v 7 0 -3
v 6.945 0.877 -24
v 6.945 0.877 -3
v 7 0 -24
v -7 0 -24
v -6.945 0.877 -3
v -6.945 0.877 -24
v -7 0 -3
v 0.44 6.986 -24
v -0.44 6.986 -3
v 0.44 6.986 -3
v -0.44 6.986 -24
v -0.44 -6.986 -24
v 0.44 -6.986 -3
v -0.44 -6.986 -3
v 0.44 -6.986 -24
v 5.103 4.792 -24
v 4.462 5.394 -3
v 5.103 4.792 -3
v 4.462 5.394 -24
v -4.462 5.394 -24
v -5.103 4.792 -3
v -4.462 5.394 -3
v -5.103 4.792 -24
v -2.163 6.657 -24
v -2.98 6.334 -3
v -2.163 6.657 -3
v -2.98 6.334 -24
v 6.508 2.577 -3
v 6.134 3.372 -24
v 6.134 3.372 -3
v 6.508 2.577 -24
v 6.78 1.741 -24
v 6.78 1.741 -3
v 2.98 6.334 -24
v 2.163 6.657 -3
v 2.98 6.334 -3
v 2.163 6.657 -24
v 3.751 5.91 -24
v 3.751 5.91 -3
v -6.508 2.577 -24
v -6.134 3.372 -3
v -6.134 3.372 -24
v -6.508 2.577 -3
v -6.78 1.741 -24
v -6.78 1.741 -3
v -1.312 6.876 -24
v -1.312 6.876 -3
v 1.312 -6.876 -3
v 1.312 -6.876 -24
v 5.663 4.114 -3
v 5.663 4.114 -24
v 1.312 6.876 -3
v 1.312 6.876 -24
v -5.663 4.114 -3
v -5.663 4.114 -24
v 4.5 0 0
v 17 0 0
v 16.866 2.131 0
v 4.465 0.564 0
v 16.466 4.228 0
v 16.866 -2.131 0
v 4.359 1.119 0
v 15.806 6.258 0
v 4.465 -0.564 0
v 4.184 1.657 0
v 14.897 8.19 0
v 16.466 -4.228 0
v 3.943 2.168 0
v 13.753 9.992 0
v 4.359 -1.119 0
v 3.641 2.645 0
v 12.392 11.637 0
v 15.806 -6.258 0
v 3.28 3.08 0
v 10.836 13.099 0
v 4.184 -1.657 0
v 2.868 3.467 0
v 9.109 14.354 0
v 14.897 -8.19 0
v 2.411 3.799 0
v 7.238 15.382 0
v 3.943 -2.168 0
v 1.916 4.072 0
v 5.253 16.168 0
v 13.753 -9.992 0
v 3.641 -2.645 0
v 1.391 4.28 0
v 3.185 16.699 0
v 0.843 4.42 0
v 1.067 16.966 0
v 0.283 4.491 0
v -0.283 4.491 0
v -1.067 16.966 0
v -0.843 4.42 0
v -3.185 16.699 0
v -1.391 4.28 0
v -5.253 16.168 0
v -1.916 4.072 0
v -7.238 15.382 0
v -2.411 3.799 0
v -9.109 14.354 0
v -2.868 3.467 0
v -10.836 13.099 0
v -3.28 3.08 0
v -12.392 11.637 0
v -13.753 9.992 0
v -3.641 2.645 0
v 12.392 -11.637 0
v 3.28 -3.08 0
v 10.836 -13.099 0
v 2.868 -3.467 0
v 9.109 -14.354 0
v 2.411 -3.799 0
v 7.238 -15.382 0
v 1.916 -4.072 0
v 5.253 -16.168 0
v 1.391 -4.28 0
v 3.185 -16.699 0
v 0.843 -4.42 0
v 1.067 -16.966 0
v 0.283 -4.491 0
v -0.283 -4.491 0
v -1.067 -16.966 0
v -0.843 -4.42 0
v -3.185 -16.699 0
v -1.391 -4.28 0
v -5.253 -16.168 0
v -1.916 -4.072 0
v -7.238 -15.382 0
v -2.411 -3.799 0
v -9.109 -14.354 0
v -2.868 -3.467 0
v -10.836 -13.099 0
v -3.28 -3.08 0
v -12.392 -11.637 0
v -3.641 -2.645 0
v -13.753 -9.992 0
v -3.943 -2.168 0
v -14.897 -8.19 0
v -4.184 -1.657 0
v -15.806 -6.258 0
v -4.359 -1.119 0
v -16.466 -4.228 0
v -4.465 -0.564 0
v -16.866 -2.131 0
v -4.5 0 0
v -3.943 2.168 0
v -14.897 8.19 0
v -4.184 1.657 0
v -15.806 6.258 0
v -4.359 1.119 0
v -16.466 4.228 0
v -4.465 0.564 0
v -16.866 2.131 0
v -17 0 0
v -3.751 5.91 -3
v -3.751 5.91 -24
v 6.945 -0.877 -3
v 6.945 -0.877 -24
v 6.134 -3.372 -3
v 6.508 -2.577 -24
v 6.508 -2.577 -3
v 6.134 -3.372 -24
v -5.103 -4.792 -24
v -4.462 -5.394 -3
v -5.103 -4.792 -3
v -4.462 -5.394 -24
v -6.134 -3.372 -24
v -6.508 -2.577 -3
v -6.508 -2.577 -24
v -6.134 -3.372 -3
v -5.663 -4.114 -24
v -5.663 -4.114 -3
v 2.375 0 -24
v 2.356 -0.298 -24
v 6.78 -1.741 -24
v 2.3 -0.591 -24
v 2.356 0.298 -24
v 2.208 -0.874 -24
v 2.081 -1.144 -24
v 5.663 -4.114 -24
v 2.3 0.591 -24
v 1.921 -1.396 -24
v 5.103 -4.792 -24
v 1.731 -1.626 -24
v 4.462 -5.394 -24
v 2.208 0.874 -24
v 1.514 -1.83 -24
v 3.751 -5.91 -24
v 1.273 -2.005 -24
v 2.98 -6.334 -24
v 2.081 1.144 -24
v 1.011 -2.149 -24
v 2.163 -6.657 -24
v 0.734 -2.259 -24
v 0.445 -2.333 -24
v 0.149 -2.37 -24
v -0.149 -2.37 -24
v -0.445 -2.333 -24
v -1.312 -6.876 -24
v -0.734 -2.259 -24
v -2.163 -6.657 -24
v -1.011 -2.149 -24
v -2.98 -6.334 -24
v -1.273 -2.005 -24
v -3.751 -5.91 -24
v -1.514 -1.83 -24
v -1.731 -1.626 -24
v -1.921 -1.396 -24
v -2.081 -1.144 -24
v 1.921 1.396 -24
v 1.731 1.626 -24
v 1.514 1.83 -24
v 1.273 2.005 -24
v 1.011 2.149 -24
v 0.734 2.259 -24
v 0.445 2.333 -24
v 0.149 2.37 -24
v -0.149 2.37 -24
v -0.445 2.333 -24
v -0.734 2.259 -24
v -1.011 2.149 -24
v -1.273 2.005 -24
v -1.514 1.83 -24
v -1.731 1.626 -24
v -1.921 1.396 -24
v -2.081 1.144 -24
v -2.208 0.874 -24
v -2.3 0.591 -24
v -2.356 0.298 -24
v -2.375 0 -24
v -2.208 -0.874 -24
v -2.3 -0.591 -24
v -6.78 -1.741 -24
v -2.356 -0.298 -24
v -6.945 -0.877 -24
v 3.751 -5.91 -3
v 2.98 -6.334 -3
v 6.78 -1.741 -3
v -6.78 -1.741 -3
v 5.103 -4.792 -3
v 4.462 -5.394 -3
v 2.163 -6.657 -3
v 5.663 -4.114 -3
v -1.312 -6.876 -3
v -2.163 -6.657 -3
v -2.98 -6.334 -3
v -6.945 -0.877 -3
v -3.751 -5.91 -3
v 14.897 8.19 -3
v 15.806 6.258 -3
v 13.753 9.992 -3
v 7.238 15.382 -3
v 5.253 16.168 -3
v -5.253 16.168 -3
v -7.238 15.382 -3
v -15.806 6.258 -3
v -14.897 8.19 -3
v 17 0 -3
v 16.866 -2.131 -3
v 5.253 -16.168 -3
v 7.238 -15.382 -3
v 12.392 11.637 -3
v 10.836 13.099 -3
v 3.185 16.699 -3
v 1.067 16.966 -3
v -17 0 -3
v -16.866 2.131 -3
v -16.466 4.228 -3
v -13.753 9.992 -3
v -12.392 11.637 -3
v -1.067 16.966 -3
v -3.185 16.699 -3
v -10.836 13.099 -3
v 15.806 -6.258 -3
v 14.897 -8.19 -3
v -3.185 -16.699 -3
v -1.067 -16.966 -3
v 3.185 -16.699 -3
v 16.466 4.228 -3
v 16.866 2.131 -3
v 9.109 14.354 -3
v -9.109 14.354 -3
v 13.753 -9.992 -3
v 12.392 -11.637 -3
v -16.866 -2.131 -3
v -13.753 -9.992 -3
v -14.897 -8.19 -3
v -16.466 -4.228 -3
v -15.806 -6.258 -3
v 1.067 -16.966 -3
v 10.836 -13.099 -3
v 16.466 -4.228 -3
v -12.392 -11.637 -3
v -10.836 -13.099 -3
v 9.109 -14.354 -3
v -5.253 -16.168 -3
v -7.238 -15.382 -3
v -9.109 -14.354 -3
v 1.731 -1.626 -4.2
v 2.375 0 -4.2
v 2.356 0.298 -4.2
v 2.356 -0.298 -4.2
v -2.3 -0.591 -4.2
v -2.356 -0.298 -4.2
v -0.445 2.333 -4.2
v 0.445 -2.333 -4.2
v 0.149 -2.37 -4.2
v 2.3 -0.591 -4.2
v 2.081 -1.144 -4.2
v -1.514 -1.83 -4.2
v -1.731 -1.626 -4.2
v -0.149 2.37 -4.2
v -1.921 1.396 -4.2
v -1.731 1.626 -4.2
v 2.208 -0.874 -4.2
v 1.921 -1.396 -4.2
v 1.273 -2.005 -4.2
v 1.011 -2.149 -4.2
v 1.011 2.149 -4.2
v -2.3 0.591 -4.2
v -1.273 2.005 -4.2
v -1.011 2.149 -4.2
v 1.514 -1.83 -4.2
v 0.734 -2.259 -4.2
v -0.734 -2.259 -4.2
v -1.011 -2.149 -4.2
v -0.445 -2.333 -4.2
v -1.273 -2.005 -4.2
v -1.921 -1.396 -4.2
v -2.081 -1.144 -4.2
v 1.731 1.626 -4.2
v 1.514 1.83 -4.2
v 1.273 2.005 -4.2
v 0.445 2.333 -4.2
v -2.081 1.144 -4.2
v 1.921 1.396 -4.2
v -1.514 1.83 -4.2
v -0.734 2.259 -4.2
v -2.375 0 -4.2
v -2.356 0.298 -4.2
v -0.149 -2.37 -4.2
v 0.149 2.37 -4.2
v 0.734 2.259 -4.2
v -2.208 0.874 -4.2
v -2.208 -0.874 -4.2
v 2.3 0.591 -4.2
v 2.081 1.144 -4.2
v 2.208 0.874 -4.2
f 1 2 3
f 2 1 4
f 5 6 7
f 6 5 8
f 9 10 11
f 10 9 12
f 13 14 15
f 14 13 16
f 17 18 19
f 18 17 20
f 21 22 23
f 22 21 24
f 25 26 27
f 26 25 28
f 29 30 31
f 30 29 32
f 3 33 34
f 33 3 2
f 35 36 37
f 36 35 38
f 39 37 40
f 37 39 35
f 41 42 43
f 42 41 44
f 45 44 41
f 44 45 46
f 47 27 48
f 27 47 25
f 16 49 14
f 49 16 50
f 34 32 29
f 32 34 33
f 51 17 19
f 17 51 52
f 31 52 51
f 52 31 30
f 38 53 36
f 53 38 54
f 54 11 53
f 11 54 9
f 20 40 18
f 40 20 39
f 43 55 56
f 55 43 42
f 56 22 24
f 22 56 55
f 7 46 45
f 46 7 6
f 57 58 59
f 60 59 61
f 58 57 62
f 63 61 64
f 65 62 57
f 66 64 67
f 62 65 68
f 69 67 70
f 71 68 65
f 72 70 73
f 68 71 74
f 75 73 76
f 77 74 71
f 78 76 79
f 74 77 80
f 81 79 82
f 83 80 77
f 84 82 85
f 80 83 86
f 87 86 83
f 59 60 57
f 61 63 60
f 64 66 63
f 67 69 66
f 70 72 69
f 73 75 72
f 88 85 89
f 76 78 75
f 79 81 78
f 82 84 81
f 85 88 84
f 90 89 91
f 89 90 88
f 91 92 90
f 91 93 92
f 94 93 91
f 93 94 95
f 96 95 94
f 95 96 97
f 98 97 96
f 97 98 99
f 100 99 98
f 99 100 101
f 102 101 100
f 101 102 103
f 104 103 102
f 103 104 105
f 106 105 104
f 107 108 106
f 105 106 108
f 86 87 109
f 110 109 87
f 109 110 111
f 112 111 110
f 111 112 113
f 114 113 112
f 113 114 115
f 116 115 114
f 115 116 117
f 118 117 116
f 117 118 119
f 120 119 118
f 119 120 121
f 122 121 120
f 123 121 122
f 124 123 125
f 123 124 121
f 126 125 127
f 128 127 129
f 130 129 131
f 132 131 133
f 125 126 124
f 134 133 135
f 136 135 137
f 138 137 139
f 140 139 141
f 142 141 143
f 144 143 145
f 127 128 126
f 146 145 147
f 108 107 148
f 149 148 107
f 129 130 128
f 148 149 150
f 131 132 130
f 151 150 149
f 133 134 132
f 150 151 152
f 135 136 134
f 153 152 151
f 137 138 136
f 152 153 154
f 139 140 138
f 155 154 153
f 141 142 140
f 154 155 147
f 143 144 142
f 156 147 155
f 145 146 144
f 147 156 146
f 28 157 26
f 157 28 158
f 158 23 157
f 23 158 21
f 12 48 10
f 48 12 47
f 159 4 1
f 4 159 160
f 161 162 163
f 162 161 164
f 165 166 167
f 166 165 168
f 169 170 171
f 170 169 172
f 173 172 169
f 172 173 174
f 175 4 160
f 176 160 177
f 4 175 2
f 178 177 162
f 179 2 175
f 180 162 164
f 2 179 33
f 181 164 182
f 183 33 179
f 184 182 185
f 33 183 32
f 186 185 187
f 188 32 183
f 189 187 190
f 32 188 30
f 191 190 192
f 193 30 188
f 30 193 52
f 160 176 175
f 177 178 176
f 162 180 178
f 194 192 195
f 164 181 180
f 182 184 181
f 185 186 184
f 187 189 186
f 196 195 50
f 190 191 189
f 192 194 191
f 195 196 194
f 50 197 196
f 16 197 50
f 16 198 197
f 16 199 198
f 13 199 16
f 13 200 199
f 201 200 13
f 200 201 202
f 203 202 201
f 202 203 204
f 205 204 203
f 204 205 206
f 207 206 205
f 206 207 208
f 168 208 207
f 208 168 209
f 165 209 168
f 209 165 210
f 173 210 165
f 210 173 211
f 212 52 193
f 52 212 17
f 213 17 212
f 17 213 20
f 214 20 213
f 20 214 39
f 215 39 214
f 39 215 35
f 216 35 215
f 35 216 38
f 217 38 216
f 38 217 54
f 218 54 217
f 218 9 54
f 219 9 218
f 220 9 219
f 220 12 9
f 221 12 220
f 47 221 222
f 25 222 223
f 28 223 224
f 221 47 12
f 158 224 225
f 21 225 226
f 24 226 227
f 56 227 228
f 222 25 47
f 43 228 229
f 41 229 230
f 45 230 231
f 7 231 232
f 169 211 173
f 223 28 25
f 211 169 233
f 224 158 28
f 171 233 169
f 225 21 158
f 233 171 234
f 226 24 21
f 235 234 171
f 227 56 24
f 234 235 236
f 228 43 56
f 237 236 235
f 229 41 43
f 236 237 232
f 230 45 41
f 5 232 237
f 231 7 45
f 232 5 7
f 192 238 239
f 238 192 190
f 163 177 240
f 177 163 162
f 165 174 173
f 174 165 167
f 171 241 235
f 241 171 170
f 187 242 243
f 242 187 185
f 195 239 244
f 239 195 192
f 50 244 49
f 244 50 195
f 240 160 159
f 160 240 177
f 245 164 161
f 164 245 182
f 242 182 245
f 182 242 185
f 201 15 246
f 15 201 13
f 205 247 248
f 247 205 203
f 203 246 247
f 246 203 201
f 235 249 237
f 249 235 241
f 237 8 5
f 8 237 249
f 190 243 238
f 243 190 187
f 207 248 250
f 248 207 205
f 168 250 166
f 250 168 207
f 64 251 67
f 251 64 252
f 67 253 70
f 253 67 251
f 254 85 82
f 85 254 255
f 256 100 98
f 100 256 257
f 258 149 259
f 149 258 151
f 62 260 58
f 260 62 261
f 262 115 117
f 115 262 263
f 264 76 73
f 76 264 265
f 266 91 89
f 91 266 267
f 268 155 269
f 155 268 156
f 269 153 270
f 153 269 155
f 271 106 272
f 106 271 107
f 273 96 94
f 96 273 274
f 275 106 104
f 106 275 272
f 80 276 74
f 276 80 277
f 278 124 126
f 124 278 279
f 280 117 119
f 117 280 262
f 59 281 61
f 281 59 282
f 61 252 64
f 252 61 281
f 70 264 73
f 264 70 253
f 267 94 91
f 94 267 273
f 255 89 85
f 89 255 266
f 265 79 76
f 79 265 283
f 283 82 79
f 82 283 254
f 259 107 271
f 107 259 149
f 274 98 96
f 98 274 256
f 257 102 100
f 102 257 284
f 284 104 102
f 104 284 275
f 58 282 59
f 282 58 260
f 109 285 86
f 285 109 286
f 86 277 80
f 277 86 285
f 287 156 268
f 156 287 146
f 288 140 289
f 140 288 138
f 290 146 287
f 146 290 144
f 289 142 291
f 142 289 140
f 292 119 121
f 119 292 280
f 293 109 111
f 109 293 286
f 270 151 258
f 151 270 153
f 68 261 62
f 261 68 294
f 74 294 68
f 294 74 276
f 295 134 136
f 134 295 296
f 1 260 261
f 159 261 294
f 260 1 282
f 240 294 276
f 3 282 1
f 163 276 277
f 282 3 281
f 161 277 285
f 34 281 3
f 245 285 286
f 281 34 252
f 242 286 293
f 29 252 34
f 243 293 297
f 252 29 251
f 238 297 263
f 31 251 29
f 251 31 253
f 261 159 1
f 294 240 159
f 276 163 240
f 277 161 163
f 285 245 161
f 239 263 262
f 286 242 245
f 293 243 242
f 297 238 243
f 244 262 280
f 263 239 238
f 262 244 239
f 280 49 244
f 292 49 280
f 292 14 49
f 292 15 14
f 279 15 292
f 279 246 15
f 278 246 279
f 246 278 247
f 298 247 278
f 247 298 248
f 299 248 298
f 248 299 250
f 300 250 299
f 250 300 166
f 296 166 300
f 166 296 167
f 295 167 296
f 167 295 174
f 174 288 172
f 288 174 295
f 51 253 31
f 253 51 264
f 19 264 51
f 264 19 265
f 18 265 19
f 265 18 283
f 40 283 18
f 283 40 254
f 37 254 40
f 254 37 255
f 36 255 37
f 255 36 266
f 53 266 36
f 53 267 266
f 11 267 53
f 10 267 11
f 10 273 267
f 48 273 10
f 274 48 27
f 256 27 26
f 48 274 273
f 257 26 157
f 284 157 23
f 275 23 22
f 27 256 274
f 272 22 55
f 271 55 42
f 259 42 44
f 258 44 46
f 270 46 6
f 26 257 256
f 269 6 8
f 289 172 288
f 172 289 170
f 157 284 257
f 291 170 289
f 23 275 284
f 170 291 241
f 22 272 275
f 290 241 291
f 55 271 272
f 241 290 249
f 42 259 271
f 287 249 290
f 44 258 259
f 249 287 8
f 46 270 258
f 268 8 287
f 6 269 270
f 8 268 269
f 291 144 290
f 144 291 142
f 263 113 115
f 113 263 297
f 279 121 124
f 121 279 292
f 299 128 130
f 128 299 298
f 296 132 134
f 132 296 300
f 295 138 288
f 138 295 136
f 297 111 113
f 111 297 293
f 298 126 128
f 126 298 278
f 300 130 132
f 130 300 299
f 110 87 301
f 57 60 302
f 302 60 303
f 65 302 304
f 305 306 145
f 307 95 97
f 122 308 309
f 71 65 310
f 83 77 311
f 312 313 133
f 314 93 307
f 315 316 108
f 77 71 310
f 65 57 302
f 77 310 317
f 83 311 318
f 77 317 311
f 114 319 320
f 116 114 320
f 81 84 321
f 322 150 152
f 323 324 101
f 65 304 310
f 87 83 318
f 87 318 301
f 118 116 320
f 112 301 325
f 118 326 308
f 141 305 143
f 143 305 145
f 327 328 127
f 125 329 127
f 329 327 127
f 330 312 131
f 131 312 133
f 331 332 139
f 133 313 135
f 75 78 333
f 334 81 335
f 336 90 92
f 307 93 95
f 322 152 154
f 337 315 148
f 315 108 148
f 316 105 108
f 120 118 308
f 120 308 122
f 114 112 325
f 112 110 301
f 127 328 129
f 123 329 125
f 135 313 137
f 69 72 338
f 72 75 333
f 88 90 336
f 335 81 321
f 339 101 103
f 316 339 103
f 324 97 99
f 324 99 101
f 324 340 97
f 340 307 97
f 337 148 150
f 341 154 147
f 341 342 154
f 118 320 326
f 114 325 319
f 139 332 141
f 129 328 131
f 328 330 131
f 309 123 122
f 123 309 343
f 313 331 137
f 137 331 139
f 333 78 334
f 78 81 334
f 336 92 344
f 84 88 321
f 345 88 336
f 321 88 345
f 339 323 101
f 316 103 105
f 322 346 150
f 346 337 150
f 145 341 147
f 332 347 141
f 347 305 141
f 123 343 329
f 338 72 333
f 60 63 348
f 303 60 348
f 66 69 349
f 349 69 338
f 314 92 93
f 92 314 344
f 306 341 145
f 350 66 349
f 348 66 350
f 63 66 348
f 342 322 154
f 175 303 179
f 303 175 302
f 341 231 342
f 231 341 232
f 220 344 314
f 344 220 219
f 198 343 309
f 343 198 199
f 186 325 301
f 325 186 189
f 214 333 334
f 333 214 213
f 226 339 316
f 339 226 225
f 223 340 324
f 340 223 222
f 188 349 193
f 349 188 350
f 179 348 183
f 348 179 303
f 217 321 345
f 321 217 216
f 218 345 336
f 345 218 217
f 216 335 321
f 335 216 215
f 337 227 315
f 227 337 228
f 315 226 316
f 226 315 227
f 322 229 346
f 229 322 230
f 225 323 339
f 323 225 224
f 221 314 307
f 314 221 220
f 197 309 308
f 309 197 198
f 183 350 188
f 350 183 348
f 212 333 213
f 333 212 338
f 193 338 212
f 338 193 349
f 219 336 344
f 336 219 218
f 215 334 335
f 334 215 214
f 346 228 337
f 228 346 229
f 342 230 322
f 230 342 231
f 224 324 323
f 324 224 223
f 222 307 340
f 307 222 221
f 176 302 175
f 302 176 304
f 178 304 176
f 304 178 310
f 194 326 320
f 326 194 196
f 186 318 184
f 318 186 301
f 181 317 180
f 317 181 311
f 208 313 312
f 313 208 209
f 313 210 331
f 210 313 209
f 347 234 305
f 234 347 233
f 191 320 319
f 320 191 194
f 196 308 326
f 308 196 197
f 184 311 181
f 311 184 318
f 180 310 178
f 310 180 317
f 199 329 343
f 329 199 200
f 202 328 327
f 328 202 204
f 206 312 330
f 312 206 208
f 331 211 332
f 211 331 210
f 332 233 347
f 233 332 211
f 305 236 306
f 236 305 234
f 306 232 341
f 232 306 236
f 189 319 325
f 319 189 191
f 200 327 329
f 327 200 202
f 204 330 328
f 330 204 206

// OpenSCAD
$fn = 50;


difference() {
	union() {
		translate(v = [0, 0, -24.0000000000]) {
			cylinder(h = 24, r = 7.0000000000);
		}
		translate(v = [0, 0, -3.0000000000]) {
			cylinder(h = 3, r = 17.0000000000);
		}
	}
	union() {
		translate(v = [0, 0, 0]) {
			rotate(a = [0, 0, 0]) {
				difference() {
					union() {
						#translate(v = [0, 0, -24.0000000000]) {
							cylinder(h = 24, r = 2.2500000000);
						}
						#translate(v = [0, 0, -4.2000000000]) {
							cylinder(h = 4.2000000000, r1 = 2.3750000000, r2 = 4.5000000000);
						}
						#translate(v = [0, 0, -24.0000000000]) {
							cylinder(h = 24, r = 2.3750000000);
						}
						#translate(v = [0, 0, -24.0000000000]) {
							cylinder(h = 24, r = 2.2500000000);
						}
					}
					union();
				}
			}
		}
	}
}
